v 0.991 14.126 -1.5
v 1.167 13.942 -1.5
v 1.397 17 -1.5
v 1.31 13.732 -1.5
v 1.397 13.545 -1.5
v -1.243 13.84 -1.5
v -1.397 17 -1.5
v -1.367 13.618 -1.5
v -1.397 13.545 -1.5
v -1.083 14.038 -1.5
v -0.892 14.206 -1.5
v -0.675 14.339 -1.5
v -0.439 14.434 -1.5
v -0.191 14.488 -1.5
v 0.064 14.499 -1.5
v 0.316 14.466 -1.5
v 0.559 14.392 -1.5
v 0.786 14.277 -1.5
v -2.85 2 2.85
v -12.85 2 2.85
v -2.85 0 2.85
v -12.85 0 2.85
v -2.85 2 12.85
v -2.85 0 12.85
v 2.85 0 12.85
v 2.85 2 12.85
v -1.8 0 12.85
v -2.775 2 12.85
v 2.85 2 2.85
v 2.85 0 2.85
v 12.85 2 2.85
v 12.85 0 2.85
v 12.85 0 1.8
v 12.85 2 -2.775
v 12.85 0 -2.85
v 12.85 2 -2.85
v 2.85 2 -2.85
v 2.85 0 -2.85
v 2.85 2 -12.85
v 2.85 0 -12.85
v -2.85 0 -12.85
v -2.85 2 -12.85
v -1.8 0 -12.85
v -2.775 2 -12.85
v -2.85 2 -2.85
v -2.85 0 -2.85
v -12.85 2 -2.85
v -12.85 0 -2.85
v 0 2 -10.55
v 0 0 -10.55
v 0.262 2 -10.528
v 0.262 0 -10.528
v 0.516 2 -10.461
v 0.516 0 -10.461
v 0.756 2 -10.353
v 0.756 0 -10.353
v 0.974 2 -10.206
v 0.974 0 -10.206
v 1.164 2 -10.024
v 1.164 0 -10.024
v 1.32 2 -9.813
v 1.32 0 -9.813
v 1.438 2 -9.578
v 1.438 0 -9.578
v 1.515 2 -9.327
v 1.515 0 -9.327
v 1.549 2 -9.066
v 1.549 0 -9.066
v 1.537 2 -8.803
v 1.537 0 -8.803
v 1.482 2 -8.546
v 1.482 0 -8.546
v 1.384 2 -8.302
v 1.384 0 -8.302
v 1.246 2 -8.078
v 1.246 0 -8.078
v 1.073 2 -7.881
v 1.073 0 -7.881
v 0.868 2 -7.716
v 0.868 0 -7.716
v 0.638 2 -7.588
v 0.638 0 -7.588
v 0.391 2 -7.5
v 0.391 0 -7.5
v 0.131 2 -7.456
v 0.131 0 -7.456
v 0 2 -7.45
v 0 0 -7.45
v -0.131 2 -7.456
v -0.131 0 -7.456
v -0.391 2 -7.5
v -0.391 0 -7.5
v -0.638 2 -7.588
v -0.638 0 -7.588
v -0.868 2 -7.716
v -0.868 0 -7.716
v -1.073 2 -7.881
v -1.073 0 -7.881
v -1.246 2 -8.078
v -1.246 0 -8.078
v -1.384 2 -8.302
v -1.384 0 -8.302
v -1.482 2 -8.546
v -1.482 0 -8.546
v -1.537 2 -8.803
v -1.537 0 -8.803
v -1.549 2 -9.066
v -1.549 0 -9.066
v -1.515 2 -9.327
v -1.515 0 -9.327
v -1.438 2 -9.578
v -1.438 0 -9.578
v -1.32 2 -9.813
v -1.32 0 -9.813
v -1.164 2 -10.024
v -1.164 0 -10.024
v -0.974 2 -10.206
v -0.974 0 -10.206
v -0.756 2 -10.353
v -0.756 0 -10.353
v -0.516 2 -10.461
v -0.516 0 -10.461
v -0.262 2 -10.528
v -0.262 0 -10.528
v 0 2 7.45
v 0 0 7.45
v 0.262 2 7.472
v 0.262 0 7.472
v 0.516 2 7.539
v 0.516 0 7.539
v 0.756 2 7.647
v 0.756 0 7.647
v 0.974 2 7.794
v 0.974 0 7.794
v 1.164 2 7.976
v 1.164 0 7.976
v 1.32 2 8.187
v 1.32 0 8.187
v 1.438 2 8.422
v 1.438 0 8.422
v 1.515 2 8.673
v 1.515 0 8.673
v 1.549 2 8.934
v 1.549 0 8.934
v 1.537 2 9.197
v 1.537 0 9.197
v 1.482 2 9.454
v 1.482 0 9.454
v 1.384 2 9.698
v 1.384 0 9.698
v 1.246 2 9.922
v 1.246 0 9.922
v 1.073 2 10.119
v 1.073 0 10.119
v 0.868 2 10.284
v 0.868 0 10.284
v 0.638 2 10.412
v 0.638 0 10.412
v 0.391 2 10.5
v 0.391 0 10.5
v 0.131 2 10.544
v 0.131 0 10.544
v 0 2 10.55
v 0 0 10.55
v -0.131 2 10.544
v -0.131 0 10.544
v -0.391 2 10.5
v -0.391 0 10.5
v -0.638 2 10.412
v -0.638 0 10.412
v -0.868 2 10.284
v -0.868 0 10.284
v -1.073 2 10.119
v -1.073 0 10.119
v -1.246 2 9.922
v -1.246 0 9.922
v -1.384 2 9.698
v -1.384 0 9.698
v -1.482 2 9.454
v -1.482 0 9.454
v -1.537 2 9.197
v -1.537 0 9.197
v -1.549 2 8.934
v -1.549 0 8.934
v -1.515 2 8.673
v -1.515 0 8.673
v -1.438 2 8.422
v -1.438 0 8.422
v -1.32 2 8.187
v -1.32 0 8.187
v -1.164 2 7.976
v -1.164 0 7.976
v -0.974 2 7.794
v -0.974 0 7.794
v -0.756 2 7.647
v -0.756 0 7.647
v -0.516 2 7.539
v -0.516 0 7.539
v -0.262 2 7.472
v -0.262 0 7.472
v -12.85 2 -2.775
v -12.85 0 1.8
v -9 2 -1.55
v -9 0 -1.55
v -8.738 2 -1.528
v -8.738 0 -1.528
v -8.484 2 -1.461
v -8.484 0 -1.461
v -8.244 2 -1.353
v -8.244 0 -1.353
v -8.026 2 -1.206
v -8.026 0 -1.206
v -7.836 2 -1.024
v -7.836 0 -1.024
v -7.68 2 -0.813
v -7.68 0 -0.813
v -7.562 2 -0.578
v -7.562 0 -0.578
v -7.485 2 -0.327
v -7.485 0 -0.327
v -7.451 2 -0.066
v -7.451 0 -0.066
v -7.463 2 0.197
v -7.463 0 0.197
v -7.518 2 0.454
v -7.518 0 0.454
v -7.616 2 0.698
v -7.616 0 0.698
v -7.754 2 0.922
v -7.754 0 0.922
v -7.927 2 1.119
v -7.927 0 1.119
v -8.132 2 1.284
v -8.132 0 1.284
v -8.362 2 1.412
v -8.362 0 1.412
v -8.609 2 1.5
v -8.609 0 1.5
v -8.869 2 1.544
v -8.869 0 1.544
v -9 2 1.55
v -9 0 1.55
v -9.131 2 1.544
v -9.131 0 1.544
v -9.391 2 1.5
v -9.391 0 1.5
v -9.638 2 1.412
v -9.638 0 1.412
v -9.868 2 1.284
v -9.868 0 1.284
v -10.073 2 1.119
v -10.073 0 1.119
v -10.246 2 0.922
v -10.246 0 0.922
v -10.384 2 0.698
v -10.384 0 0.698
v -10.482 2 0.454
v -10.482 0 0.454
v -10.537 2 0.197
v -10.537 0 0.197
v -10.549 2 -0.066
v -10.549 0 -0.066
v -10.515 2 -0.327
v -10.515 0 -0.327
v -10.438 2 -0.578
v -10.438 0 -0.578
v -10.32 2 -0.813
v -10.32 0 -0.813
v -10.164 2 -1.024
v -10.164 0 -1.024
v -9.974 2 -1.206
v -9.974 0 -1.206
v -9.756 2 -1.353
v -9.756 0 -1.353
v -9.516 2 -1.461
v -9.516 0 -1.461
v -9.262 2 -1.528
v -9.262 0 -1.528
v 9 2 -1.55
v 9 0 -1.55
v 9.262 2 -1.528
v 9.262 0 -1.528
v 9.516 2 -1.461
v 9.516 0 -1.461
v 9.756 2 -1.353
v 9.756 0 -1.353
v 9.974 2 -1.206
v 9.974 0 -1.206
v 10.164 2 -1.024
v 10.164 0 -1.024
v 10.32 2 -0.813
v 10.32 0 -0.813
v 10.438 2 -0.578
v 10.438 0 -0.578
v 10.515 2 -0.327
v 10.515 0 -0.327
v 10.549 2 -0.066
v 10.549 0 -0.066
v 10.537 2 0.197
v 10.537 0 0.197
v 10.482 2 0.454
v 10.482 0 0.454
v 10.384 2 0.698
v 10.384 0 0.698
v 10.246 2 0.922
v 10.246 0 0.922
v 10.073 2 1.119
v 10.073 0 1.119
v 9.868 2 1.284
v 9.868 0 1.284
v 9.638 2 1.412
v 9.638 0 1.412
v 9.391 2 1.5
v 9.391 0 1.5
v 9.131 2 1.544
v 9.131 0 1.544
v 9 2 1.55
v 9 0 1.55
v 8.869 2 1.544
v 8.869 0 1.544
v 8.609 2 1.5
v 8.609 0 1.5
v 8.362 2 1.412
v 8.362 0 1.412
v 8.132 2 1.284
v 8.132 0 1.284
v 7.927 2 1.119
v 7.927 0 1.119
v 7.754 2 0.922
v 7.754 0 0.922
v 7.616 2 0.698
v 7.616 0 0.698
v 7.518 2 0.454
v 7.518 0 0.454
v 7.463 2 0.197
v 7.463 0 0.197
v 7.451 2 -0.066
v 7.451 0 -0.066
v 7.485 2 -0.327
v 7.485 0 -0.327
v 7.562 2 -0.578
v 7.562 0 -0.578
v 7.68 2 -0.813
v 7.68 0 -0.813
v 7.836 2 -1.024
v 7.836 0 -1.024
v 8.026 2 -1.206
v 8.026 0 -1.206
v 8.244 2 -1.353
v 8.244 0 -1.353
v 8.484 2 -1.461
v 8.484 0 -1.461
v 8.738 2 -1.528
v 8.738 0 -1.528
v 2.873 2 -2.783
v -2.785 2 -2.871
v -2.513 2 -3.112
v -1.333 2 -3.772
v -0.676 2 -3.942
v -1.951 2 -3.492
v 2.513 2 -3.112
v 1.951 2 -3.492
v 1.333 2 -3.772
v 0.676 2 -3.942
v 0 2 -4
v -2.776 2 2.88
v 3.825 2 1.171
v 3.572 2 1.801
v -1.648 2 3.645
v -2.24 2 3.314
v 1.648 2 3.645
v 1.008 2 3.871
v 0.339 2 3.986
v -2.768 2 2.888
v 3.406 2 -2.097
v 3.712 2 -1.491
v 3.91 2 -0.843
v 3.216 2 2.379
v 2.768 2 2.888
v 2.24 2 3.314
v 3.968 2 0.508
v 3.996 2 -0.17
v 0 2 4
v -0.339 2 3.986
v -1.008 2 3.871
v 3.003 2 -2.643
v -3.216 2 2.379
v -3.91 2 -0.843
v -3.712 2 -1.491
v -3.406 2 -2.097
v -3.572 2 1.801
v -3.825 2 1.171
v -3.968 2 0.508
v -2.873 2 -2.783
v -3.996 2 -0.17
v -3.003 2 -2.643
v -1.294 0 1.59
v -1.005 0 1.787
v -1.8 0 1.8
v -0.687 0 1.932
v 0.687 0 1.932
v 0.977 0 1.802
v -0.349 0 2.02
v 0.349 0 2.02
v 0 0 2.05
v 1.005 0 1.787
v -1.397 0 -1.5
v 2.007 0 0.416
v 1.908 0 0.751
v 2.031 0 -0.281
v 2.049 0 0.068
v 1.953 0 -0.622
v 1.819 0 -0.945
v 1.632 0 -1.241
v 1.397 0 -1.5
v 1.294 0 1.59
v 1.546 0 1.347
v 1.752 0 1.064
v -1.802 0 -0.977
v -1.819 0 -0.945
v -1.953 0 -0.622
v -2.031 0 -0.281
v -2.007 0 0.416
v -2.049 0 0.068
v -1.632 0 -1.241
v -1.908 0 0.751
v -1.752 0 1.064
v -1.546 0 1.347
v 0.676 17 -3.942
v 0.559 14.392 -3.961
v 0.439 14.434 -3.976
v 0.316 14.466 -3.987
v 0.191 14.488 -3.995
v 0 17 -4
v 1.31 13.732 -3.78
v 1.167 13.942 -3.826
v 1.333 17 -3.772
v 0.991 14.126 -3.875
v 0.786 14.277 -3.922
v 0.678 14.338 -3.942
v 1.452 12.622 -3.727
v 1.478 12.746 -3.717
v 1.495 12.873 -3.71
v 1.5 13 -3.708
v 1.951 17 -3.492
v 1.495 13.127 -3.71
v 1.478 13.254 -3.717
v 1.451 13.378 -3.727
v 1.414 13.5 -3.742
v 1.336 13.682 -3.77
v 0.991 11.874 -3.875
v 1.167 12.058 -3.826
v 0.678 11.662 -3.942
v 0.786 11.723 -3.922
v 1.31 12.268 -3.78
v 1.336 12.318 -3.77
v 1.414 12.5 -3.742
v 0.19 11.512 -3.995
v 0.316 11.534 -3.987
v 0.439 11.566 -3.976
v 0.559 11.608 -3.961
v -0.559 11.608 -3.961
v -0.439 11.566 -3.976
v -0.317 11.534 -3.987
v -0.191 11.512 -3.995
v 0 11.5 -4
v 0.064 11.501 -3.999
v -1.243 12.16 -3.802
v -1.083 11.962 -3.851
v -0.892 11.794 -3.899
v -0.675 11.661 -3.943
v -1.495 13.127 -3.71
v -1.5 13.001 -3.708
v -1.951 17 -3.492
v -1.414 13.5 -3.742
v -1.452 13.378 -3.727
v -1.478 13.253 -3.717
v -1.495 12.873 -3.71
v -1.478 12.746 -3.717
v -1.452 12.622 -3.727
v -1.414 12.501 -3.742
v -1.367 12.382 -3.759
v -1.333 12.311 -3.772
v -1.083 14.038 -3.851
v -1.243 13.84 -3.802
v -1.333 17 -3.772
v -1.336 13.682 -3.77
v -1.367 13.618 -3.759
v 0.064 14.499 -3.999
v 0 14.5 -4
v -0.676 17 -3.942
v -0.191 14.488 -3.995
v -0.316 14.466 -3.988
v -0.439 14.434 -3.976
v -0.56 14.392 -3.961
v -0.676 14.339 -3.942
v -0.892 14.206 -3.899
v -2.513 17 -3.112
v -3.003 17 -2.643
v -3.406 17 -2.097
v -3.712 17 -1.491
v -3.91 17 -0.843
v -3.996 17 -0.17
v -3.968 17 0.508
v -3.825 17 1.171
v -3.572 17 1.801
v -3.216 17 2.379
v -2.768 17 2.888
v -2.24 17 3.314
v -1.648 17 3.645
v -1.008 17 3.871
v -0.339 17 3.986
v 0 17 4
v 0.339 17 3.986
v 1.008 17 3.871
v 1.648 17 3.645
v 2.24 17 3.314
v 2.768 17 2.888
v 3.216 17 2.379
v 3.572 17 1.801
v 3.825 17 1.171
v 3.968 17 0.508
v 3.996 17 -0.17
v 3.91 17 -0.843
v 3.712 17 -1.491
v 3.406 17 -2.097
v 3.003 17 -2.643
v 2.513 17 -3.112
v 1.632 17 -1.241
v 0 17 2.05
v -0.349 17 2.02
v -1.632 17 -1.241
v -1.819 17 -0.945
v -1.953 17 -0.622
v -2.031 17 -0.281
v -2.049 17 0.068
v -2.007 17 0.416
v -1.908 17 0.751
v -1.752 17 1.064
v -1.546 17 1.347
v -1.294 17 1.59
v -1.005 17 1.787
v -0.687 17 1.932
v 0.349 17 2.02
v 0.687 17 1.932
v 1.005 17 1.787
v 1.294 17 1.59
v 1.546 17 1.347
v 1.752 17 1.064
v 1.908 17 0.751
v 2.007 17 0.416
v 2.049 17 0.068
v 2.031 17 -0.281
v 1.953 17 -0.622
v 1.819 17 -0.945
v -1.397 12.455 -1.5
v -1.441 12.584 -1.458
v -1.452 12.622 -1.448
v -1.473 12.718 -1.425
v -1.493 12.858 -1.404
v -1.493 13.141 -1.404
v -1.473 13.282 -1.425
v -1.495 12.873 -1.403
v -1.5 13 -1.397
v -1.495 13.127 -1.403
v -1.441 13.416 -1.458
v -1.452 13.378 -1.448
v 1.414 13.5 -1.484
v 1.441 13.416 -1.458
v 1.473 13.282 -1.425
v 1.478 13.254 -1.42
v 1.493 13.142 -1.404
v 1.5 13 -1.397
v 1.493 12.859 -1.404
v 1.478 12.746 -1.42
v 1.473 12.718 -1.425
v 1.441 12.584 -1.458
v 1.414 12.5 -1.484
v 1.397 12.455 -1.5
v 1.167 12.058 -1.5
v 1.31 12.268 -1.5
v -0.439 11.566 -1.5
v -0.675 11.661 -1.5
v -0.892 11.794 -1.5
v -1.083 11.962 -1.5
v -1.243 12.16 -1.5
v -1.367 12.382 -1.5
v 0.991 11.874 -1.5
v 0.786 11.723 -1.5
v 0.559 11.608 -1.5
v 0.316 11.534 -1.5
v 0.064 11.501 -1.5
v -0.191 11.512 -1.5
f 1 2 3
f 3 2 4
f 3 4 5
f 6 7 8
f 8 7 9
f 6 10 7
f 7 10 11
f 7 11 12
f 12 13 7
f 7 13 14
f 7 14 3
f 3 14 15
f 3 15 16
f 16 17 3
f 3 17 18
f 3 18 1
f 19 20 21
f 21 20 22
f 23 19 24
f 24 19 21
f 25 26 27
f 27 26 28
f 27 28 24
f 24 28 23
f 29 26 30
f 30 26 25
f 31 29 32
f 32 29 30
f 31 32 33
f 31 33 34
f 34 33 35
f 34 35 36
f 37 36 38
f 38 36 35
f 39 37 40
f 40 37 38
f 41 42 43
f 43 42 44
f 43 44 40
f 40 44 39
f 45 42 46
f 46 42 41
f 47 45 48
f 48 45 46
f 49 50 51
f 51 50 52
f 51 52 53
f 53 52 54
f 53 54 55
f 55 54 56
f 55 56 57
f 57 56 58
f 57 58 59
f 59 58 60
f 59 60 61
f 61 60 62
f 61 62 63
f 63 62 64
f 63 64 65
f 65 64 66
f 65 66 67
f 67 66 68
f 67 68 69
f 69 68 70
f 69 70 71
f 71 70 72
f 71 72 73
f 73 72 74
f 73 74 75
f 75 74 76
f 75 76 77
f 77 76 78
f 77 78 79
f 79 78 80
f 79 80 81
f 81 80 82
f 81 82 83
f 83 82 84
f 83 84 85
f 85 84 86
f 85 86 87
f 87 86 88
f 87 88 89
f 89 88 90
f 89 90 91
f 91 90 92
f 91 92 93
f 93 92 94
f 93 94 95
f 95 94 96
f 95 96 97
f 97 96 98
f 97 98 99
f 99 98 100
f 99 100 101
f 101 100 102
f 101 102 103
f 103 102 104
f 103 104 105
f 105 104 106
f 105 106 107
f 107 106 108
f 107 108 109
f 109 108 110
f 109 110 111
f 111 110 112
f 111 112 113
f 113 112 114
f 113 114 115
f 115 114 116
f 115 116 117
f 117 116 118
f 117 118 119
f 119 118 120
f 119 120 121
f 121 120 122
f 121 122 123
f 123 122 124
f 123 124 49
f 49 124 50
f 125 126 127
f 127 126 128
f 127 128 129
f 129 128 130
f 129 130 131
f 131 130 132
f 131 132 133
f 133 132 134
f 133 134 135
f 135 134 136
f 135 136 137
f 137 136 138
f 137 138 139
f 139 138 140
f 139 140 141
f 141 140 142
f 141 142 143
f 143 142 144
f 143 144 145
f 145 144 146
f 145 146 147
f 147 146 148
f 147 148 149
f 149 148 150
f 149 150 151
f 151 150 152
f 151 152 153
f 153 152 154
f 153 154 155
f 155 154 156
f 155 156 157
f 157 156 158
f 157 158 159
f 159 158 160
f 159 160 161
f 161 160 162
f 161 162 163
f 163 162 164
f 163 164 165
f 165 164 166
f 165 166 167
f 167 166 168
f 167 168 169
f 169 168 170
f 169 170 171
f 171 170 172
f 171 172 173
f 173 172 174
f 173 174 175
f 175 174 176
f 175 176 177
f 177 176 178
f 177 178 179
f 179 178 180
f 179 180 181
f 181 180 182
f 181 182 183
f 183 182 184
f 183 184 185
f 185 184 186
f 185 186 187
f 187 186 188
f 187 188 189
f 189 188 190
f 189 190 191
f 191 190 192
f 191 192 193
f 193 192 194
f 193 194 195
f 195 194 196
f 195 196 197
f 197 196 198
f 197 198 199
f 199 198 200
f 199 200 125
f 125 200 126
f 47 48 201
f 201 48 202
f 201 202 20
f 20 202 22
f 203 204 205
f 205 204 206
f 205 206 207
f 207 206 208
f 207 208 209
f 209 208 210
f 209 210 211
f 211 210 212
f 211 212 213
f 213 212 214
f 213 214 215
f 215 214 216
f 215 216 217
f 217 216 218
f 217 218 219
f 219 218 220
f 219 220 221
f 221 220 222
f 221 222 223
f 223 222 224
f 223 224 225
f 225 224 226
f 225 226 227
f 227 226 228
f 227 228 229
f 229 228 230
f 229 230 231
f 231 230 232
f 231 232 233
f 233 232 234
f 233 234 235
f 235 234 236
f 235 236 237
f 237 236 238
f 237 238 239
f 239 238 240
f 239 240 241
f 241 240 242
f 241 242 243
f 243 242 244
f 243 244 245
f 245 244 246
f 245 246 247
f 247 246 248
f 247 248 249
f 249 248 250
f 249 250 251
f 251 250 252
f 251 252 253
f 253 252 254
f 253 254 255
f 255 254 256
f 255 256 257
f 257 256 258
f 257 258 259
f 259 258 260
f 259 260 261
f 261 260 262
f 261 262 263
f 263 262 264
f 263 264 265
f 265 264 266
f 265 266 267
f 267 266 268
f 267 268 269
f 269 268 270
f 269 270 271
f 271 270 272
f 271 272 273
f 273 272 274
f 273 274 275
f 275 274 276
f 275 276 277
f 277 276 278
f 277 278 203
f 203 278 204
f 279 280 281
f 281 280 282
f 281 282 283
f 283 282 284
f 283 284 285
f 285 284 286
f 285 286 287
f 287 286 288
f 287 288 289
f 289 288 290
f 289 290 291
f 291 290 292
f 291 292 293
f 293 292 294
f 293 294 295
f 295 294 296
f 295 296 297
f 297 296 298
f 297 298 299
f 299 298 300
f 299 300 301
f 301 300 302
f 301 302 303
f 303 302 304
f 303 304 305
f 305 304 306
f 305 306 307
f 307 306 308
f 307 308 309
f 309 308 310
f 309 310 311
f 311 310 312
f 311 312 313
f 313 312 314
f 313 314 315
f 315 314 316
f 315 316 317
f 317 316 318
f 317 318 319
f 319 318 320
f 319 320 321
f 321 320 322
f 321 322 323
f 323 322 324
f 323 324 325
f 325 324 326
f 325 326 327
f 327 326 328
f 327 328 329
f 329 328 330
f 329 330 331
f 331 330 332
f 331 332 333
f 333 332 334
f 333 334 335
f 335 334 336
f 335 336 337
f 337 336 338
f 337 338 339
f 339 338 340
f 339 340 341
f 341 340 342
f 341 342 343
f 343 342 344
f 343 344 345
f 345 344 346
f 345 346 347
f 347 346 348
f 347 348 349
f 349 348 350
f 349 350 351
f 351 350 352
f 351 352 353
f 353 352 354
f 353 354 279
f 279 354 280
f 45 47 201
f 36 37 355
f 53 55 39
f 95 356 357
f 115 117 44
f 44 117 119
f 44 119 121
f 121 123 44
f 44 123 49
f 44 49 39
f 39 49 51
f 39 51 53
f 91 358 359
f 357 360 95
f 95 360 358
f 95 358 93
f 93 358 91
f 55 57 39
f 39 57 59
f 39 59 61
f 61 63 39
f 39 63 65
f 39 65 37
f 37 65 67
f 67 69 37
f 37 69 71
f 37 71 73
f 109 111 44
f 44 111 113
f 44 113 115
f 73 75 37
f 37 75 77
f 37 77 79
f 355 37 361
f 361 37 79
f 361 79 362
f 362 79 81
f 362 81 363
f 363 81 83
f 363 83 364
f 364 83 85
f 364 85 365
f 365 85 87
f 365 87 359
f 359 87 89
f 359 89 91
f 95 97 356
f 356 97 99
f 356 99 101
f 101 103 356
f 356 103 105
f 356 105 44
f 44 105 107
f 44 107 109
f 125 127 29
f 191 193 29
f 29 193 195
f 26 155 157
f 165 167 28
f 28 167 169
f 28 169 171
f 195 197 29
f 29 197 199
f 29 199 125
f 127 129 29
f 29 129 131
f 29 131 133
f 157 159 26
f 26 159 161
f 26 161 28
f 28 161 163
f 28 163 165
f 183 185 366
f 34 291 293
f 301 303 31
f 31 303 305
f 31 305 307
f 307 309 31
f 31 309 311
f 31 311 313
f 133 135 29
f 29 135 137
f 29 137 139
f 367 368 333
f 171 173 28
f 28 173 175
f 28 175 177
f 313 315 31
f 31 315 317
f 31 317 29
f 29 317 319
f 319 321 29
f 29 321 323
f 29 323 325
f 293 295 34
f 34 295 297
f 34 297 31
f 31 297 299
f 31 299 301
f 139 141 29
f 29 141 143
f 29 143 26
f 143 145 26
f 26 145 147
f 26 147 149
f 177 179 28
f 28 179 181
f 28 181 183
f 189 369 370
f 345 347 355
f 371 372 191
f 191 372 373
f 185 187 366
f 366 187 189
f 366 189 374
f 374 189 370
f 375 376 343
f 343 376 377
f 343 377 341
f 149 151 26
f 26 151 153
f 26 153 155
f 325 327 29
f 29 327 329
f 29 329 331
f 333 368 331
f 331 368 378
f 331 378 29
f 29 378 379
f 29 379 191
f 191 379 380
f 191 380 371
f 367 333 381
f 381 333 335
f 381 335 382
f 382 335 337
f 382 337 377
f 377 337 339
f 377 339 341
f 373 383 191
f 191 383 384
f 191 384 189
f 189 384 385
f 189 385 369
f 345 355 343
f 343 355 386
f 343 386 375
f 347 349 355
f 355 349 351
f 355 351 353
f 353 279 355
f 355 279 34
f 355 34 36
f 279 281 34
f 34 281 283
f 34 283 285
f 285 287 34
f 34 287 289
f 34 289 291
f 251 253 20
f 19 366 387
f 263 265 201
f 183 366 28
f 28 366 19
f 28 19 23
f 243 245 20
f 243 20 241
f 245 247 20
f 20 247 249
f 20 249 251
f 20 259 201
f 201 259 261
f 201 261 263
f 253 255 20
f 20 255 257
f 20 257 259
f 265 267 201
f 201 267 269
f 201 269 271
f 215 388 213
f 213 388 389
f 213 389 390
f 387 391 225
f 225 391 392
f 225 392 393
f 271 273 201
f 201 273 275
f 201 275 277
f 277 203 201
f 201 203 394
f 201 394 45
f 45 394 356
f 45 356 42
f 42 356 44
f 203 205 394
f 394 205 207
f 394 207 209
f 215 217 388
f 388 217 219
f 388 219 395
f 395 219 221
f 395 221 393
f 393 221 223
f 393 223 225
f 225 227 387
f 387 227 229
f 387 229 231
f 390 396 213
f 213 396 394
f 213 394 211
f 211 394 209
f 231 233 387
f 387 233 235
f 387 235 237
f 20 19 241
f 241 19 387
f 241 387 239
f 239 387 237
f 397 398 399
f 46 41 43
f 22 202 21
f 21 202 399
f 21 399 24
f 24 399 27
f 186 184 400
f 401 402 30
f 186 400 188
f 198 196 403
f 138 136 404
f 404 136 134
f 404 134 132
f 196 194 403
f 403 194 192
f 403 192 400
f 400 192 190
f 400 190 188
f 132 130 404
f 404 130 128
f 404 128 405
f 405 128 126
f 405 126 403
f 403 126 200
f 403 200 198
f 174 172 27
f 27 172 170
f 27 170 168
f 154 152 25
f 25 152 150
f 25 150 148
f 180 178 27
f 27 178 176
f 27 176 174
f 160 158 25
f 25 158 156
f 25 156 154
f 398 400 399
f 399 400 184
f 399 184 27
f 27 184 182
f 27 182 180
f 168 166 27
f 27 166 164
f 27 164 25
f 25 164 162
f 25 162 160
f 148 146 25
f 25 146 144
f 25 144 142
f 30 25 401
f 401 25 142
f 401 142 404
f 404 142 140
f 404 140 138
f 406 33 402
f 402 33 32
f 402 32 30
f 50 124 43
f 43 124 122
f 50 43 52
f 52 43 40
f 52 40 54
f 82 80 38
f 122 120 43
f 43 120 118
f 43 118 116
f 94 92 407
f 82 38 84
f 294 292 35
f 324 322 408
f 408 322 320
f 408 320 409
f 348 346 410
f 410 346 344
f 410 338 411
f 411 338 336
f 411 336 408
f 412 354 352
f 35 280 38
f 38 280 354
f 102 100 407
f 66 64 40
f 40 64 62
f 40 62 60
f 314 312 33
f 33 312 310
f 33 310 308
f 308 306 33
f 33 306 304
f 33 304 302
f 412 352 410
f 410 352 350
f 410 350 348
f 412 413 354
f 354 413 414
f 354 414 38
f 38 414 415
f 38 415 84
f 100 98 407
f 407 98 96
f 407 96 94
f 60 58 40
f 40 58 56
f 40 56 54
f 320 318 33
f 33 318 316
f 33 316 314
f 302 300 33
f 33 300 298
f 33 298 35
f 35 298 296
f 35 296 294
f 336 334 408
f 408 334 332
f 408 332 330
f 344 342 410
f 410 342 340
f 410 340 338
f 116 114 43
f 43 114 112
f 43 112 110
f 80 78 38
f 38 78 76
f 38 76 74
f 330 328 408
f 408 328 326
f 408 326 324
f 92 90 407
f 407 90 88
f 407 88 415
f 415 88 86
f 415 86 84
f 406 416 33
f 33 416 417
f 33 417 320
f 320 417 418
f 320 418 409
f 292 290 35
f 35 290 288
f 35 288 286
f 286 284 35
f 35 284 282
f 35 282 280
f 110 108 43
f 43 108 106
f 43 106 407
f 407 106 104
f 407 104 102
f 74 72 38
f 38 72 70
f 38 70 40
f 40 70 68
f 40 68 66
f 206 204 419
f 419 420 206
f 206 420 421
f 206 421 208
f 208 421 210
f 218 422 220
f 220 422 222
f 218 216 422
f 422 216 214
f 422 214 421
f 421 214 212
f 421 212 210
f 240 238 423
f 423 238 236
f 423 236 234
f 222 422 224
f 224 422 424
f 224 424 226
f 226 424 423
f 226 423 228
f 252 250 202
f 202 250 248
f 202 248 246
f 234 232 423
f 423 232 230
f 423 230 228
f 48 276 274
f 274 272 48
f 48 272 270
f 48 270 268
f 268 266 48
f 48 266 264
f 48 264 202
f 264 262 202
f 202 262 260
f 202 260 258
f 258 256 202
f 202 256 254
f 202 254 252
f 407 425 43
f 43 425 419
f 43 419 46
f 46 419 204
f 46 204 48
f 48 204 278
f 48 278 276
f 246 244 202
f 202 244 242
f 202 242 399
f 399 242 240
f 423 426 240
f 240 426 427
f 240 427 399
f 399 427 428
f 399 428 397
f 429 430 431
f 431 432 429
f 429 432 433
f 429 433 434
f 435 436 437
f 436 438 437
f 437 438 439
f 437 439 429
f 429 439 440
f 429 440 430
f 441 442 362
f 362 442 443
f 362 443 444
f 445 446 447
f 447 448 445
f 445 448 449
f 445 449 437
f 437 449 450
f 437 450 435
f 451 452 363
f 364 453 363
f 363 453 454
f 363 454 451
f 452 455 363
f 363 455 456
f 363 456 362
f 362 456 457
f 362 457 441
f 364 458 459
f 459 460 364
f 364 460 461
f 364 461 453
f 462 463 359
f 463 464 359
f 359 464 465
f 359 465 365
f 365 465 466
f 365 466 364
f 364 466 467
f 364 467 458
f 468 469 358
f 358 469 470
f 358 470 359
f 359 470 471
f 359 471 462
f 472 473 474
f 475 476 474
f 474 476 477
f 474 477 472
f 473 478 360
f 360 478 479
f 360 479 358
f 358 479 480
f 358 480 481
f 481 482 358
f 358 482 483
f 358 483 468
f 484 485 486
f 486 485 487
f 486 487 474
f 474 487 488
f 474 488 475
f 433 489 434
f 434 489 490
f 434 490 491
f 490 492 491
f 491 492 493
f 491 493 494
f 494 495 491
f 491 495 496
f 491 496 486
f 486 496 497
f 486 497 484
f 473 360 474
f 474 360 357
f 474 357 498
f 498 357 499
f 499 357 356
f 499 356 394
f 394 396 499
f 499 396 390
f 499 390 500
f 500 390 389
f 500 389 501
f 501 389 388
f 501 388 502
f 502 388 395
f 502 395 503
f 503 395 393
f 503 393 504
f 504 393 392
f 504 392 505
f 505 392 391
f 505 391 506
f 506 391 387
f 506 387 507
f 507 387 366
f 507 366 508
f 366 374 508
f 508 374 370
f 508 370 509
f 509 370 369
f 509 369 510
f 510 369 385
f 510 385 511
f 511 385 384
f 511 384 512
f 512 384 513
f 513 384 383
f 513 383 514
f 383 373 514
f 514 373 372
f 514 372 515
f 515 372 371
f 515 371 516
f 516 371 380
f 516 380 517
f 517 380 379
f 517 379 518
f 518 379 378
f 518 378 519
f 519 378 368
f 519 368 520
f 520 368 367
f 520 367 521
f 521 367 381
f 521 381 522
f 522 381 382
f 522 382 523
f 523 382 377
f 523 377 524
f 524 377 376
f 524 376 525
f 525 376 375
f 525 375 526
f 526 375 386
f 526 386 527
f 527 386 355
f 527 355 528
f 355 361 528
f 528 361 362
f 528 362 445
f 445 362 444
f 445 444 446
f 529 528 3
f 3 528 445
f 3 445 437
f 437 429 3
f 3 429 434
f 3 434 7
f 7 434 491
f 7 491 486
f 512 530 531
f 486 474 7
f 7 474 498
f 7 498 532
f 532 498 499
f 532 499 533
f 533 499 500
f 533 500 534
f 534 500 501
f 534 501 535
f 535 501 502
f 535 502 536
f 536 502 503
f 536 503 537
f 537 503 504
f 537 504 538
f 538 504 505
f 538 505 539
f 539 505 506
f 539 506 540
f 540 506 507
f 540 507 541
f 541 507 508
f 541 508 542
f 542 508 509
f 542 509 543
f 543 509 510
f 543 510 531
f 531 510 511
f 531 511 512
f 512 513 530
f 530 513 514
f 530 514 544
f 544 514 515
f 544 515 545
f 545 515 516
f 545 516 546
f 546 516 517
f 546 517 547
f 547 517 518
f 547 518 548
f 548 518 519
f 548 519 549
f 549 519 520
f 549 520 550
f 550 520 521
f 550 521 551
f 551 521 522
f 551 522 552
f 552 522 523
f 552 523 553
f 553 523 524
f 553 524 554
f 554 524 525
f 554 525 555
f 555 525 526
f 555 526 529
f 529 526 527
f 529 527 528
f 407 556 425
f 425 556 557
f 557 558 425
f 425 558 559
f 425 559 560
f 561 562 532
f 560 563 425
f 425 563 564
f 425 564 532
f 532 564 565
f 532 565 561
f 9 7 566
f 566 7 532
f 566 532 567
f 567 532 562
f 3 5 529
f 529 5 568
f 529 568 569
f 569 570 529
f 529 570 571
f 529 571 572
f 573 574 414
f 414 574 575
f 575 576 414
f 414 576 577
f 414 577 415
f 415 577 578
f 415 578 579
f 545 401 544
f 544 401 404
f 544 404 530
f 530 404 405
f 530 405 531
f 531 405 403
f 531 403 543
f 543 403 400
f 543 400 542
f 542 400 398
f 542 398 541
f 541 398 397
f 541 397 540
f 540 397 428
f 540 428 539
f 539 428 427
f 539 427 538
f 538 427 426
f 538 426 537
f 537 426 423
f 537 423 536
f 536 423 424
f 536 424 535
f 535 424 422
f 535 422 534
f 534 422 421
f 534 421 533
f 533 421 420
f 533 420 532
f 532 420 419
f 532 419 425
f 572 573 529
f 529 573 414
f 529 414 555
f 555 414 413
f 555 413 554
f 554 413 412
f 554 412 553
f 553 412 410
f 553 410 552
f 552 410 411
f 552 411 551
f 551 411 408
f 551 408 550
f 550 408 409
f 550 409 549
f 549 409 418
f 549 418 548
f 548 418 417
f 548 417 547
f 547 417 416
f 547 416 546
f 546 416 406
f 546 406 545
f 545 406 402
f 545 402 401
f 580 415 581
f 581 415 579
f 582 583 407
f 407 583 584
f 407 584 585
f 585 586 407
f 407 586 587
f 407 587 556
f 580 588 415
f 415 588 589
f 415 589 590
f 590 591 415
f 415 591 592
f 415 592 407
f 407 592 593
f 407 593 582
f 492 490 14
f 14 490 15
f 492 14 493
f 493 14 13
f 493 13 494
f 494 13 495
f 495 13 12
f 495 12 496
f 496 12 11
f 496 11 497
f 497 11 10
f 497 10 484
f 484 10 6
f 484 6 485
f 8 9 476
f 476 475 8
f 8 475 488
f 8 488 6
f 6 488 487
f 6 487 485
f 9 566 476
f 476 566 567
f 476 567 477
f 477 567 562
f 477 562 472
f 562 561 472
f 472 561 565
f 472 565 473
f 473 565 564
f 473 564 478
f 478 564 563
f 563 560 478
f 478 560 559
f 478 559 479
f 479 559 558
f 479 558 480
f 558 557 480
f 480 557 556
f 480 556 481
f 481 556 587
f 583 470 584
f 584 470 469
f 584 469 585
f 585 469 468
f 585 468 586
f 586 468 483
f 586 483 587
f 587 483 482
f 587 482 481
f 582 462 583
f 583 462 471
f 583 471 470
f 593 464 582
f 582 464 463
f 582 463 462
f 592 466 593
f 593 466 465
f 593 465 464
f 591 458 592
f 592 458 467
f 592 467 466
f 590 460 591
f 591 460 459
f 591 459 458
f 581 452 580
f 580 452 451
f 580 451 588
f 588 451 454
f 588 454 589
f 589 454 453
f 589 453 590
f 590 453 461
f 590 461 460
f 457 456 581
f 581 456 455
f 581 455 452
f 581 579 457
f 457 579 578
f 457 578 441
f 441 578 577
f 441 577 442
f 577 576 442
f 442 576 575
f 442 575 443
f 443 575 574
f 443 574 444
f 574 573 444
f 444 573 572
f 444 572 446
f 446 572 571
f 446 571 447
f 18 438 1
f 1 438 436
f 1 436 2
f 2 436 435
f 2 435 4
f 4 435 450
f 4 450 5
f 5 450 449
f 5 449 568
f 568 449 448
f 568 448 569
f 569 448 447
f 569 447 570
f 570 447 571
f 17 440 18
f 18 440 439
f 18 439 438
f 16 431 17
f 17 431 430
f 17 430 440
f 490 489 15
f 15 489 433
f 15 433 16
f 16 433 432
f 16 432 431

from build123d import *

# Parameters (mm, degrees)
SKETCH_1_W          = 25.7
SKETCH_1_H          = 5.7
SKETCH_1_R          = 1.55
SKETCH_1_W_2        = 5.7
SKETCH_1_H_2        = 25.7
EXTRUDE_1_DEPTH     = 2
SKETCH_2_R          = 4
EXTRUDE_2_DEPTH     = 15
CUT_EXTRUDE_1_DEPTH = 25.884633813
SKETCH_4_R          = 1.5
CUT_EXTRUDE_2_DEPTH = 26.691340954
CUT_EXTRUDE_START   = -1
SKETCH_5_R          = 1.5
CUT_EXTRUDE_3_DEPTH = 1


with BuildPart() as part:
    # 草图1 → 凸台-拉伸1 (new body)
    # profile 1 of 2: a face of its own
    with BuildSketch(Plane(origin=(0, 0, 0), x_dir=(1, 0, 0), z_dir=(0, 1, 0))):
        Rectangle(SKETCH_1_W, SKETCH_1_H)
        with Locations(Location((9, 0, 0), (0, 0, 270))):
            Circle(SKETCH_1_R, mode=Mode.SUBTRACT)
        with Locations(Location((-9, 0, 0), (0, 0, 270))):
            Circle(SKETCH_1_R, mode=Mode.SUBTRACT)
    # profile 2 of 2: a face of its own
    with BuildSketch(Plane(origin=(0, 0, 0), x_dir=(1, 0, 0), z_dir=(0, 1, 0))):
        Rectangle(SKETCH_1_W_2, SKETCH_1_H_2)
        with Locations(Location((0, 9, 0), (0, 0, 270))):
            Circle(SKETCH_1_R, mode=Mode.SUBTRACT)
        with Locations(Location((0, -9, 0), (0, 0, 270))):
            Circle(SKETCH_1_R, mode=Mode.SUBTRACT)
    extrude(amount=EXTRUDE_1_DEPTH)

    # 草图2 → 凸台-拉伸2 (add)
    with BuildSketch(Plane(origin=(0, 2, 0), x_dir=(1, 0, 0), z_dir=(0, 1, 0))):
        with Locations(Location((0, 0, 0), (0, 0, 270))):
            Circle(SKETCH_2_R)
    extrude(amount=EXTRUDE_2_DEPTH)

    # 草图3 → 切除-拉伸1 (cut, through all)
    with BuildSketch(Plane(origin=(0, 17, 0), x_dir=(1, 0, 0), z_dir=(0, 1, 0))):
        with BuildLine():
            Line((0, 1.5), (-1.397318861, 1.5))
            ThreePointArc((-1.397318861, 1.5), (-0.817923081, -1.879761111), (2.05, 0))
            ThreePointArc((2.05, 0), (1.879761111, 0.817923081), (1.397318861, 1.5))
            Line((1.397318861, 1.5), (0, 1.5))
        make_face()
    extrude(amount=-CUT_EXTRUDE_1_DEPTH, mode=Mode.SUBTRACT)

    # 草图4 → 切除-拉伸2 (cut, through all)
    with BuildSketch(Plane.XY.offset(-1.5)):
        with Locations(Location((0, 13, 0), (0, 0, 21.322909655))):
            Circle(SKETCH_4_R)
    extrude(amount=-CUT_EXTRUDE_2_DEPTH, mode=Mode.SUBTRACT)

    # 草图5 → 切除-拉伸3 (cut)
    with BuildSketch(Plane(origin=(0, 0, -1.5), x_dir=(-1, 0, 0), z_dir=(0, 0, -1)).offset(CUT_EXTRUDE_START)):
        with Locations(Location((0, 13, 0), (0, 0, 158.677090345))):
            Circle(SKETCH_5_R)
    extrude(amount=CUT_EXTRUDE_3_DEPTH, mode=Mode.SUBTRACT)


solid = part.part
